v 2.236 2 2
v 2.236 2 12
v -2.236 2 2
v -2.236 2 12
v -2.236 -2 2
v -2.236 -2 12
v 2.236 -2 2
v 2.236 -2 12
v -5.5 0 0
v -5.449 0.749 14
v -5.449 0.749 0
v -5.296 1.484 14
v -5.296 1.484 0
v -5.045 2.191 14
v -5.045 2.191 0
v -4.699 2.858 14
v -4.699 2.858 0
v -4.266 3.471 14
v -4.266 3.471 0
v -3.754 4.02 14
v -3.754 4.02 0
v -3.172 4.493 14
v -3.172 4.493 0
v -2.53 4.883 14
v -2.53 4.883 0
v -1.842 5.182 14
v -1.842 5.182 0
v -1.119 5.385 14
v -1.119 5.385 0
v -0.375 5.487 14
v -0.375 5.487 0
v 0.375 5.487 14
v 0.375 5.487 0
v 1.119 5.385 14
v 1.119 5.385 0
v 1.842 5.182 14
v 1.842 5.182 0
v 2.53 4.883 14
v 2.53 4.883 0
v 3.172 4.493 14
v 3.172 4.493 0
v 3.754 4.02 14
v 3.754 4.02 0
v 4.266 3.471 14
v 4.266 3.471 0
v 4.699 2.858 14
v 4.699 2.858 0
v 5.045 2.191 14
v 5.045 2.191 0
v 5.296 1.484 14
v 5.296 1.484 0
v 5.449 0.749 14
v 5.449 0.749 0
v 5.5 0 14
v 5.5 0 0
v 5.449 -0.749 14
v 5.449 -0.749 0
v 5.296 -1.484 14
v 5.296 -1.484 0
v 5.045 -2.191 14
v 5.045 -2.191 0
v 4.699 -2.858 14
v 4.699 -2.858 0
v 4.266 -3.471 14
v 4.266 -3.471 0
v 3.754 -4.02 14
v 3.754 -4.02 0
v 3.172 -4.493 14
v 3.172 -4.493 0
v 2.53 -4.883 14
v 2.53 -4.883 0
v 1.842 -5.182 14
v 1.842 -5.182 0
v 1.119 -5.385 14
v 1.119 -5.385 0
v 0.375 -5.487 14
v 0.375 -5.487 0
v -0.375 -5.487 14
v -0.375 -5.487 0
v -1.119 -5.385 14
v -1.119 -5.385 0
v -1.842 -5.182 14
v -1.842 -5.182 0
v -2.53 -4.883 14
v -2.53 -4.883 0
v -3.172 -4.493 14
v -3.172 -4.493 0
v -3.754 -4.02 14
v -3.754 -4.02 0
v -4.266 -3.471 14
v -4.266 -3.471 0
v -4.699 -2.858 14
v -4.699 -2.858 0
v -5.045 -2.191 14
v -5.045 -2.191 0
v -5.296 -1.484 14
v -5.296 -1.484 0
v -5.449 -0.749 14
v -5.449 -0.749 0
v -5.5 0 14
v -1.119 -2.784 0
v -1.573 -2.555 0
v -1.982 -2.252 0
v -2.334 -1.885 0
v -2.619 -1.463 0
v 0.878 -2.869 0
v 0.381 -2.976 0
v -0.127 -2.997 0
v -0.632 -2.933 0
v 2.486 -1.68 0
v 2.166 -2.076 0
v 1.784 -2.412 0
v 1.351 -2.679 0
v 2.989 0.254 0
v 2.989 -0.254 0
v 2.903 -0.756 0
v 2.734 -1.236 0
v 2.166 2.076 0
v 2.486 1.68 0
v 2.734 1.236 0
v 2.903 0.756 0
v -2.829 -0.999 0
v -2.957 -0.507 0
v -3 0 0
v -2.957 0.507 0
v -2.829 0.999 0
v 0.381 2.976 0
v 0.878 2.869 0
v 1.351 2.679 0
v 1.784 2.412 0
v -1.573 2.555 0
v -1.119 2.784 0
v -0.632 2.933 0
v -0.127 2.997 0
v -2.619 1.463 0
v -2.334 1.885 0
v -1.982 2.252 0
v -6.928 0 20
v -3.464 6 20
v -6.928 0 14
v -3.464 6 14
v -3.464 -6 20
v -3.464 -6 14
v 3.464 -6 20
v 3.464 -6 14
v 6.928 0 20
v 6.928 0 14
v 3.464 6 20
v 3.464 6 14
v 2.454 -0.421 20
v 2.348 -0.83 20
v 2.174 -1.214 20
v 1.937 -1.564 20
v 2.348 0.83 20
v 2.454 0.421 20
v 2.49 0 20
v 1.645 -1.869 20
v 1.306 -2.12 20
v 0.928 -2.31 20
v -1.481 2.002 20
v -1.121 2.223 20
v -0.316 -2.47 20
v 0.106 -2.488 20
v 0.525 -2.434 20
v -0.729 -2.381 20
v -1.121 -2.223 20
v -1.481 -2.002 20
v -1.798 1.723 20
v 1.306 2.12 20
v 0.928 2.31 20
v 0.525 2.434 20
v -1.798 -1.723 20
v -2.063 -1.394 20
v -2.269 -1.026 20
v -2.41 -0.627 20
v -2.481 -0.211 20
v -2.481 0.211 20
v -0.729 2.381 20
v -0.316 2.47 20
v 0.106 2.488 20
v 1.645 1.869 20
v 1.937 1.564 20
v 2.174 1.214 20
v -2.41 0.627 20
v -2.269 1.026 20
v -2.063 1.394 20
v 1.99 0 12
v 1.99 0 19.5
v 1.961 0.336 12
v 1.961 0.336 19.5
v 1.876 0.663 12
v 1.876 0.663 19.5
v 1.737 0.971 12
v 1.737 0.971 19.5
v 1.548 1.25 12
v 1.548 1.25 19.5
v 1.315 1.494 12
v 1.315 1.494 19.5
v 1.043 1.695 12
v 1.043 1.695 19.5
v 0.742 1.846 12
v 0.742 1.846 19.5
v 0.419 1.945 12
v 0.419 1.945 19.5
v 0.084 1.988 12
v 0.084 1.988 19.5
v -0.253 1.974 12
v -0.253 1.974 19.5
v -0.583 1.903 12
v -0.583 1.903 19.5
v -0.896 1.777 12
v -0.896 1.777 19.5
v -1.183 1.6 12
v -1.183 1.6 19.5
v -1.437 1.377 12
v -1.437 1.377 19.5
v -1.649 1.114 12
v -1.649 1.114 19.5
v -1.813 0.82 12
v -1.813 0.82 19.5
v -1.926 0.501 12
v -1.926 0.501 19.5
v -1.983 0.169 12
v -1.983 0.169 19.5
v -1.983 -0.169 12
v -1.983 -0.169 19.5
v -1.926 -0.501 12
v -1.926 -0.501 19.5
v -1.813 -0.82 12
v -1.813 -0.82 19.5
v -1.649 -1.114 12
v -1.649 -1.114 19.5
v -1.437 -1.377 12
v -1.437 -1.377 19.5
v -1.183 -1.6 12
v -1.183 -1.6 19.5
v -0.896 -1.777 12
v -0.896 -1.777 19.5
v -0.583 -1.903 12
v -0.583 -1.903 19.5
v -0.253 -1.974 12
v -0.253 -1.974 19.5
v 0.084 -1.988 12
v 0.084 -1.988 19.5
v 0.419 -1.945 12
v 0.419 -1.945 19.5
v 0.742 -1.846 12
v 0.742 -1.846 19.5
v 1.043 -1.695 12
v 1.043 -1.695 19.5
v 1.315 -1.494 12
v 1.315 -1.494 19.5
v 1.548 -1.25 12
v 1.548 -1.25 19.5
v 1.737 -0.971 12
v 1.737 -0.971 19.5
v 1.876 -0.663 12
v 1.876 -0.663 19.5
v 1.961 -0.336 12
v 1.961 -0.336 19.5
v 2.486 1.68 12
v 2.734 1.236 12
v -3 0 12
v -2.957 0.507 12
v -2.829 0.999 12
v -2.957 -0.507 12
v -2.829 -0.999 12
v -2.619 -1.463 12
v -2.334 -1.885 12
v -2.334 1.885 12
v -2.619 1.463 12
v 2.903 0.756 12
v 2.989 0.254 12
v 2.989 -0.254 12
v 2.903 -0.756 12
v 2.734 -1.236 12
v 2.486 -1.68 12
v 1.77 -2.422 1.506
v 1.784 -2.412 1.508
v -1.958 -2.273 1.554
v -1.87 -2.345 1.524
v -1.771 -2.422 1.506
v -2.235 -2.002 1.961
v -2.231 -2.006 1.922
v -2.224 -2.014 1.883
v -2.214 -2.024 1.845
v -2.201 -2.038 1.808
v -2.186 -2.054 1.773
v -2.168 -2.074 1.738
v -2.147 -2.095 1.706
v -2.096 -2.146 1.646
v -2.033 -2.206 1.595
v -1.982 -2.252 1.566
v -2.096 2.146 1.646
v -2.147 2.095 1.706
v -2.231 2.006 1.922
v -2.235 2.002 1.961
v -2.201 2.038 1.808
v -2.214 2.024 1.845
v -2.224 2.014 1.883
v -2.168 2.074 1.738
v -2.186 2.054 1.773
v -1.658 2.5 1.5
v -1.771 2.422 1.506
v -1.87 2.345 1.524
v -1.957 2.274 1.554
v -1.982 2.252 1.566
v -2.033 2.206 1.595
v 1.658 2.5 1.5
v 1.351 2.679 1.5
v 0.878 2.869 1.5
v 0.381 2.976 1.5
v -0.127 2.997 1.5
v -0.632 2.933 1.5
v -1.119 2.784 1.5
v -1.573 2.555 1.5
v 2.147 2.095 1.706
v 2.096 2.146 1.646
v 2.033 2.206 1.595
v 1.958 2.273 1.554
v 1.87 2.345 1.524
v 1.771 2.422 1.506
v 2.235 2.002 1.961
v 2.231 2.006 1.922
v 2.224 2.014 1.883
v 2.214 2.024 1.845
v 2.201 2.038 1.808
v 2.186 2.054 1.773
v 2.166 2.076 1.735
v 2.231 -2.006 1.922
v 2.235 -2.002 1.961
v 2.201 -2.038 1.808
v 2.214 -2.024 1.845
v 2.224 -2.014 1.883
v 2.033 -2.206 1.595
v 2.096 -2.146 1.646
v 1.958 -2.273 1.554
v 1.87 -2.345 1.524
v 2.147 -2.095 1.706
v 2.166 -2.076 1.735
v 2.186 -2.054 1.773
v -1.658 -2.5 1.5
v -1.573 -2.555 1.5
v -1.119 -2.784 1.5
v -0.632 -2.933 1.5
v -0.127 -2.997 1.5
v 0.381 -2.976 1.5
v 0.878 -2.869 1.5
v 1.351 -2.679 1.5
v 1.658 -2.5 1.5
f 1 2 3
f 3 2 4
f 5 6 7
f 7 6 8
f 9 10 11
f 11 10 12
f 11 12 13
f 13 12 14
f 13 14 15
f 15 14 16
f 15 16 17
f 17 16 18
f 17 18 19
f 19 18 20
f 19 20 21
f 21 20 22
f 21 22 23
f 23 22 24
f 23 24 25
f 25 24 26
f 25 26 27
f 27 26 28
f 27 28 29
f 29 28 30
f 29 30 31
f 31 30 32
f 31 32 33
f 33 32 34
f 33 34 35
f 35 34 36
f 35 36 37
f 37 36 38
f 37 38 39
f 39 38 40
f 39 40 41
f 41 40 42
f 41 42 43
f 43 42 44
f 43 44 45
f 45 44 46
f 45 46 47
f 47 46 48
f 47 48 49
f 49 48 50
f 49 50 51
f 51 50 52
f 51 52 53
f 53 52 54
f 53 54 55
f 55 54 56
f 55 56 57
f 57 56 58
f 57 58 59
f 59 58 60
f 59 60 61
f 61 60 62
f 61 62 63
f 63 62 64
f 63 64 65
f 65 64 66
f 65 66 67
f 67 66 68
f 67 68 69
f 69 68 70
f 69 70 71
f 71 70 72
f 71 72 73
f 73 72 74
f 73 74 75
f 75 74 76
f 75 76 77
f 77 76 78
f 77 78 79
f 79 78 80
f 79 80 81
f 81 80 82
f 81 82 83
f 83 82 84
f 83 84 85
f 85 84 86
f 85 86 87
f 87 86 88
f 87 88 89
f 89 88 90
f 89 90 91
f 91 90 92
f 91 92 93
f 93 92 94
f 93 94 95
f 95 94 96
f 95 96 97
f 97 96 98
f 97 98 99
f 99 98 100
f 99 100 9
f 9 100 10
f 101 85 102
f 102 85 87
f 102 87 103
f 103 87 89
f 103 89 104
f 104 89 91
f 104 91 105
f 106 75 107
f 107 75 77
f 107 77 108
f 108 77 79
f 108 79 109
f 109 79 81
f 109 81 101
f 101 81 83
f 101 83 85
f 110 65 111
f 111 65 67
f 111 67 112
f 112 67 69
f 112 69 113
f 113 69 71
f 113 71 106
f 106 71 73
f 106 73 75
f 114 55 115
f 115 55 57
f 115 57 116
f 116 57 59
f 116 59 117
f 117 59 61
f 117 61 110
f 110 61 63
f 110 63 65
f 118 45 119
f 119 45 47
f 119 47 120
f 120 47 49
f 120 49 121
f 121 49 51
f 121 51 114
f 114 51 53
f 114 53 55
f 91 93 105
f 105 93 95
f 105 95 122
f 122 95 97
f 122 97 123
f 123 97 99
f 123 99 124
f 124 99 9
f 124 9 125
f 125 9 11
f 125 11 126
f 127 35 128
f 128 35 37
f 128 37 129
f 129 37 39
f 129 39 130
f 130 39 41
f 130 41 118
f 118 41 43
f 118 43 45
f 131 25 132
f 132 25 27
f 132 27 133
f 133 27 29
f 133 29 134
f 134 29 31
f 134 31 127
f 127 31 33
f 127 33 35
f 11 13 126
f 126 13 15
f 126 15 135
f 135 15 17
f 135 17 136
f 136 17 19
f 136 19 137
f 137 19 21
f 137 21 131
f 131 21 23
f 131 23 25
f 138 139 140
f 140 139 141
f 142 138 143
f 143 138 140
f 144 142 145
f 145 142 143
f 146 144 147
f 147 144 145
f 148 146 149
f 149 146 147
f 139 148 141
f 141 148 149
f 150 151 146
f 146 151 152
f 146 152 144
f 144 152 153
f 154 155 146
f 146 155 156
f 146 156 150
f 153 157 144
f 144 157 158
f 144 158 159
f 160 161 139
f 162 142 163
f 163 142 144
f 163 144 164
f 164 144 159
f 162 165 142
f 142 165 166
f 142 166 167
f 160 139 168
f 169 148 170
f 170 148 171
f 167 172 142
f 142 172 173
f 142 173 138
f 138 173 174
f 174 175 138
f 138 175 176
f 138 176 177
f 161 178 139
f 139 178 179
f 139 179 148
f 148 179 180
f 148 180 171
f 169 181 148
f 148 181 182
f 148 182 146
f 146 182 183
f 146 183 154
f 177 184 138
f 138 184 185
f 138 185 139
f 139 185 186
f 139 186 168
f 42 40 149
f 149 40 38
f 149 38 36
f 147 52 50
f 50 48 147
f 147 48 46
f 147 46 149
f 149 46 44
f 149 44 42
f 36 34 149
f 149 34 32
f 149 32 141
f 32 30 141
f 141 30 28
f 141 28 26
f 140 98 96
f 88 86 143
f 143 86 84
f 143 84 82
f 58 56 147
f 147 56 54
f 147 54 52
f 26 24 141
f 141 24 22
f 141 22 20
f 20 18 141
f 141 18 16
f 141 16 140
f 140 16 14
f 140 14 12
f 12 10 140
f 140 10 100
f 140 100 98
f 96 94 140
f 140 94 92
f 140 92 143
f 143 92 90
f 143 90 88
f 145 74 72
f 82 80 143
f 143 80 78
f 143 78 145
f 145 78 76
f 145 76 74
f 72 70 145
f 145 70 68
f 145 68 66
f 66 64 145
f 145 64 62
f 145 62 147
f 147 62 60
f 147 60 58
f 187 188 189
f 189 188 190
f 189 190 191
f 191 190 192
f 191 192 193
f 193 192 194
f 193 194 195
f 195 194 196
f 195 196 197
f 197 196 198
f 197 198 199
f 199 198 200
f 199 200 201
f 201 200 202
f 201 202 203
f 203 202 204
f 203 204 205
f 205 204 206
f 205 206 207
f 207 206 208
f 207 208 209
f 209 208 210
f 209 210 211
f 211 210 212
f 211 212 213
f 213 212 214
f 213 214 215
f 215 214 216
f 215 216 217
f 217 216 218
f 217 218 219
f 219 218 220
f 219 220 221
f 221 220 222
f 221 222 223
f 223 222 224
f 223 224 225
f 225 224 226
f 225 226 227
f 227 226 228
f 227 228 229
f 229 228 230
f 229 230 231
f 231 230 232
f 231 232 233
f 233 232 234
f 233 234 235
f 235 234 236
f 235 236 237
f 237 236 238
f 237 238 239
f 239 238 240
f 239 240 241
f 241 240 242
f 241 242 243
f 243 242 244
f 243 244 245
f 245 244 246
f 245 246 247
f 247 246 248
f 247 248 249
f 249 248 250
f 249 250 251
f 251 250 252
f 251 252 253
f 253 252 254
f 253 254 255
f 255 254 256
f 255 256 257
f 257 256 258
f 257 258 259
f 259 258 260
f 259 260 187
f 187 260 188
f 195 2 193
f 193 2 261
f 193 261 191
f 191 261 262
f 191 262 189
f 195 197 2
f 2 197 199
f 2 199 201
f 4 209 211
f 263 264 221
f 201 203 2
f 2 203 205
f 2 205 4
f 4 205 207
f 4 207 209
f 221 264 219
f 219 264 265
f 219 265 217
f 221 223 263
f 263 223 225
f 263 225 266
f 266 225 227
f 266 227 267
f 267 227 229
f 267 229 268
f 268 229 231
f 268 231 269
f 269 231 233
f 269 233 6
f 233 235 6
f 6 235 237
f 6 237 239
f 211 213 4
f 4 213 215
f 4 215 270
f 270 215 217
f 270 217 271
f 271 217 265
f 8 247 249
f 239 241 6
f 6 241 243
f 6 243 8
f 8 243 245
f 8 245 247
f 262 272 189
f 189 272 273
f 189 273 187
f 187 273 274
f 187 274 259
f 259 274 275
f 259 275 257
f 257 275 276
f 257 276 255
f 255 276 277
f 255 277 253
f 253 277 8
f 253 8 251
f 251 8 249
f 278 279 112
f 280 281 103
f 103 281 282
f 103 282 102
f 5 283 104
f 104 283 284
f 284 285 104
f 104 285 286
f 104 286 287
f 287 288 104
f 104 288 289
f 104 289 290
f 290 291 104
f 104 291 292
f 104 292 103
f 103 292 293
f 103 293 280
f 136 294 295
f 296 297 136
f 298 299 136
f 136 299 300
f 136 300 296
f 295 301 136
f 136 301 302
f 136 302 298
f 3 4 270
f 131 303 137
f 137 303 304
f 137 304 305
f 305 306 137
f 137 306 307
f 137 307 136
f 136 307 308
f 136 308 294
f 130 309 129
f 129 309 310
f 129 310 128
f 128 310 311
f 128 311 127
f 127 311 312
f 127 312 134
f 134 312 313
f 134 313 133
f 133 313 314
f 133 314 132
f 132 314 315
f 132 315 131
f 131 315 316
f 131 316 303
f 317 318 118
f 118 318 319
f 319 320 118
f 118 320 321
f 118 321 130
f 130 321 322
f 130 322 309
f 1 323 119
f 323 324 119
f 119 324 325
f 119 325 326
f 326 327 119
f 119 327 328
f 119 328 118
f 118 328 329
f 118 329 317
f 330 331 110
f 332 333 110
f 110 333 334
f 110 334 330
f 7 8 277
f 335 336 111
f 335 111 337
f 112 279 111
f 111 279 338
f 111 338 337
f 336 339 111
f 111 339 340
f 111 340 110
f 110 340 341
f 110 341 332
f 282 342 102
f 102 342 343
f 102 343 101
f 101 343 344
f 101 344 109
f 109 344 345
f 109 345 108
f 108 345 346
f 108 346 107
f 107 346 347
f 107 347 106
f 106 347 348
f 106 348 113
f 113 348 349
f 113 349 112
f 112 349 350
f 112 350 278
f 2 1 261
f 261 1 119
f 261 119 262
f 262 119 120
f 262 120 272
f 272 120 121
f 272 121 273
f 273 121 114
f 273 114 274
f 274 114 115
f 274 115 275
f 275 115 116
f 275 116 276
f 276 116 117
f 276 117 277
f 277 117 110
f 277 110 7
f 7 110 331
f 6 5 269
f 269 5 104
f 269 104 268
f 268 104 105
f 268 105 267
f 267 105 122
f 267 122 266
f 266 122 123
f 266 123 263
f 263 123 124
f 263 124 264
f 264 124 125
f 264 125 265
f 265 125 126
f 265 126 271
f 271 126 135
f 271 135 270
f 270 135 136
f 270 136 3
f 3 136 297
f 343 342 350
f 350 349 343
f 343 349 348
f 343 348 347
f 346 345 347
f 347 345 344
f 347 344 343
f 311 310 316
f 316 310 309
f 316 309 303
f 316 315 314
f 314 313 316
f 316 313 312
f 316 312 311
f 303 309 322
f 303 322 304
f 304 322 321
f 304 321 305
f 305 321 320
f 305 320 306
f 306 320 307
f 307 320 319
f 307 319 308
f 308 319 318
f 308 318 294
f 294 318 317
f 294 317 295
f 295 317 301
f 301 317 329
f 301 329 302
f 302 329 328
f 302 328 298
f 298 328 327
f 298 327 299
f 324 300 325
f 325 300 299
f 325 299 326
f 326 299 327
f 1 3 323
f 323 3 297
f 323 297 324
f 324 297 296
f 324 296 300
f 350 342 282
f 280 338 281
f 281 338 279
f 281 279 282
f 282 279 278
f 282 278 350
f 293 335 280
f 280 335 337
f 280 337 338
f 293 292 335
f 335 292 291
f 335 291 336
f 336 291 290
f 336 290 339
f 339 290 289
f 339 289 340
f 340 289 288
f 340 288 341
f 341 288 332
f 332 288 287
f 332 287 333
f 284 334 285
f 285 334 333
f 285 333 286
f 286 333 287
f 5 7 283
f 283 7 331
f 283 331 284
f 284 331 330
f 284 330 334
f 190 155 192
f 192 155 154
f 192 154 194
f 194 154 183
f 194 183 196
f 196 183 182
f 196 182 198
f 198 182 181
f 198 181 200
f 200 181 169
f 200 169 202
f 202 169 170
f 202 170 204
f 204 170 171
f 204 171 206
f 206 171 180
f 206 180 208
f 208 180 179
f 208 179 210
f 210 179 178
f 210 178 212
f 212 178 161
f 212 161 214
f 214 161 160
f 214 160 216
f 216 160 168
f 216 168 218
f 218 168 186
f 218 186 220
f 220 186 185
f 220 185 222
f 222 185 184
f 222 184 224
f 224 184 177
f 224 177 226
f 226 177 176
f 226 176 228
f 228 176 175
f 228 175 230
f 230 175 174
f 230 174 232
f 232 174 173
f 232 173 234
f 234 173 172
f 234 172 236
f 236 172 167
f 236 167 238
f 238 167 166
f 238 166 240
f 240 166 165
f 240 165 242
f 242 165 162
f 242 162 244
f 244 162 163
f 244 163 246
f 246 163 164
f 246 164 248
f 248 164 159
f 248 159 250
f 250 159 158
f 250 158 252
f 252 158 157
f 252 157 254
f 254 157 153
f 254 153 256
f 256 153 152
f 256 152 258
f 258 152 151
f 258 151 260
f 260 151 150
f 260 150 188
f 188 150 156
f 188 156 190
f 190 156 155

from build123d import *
from build123d.topology import SkipClean

# Parameters (mm, degrees)
SKETCH1_R           = 5.5
BOSS_EXTRUDE1_DEPTH = 14
BOSS_EXTRUDE2_DEPTH = 6
SKETCH3_R           = 1.99
CUT_EXTRUDE1_DEPTH  = 8
CUT_EXTRUDE2_DEPTH  = 12
SKETCH5_R           = 3
CUT_EXTRUDE3_DEPTH  = 1.5
FILLET2_R           = 0.5
CHAMFER1_SIZE       = 0.5


with BuildPart() as part:
    # Sketch1 → Boss-Extrude1 (new body)
    with BuildSketch(Plane.XY):
        Circle(SKETCH1_R)
    extrude(amount=BOSS_EXTRUDE1_DEPTH)

    # Sketch2 → Boss-Extrude2 (add)
    with BuildSketch(Plane.XY.offset(14)):
        Polygon((-6.928203, 0), (-3.464102, -6), (3.464102, -6), (6.928203, 0), (3.464102, 6), (-3.464102, 6), align=None)
    extrude(amount=BOSS_EXTRUDE2_DEPTH)

    # Sketch3 → Cut-Extrude1 (cut)
    with BuildSketch(Plane.XY.offset(20)):
        Circle(SKETCH3_R)
    extrude(amount=-CUT_EXTRUDE1_DEPTH, mode=Mode.SUBTRACT)

    # Sketch4 → Cut-Extrude2 (cut)
    with BuildSketch(Plane(origin=(0, 0, 0), x_dir=(-1, 0, 0), z_dir=(0, 0, -1))):
        with BuildLine():
            Line((-2.236068, 2), (2.236068, 2))
            ThreePointArc((2.236068, 2), (3, 0), (2.236068, -2))
            Line((2.236068, -2), (-2.236068, -2))
            ThreePointArc((-2.236068, -2), (-3, 0), (-2.236068, 2))
        make_face()
    extrude(amount=-CUT_EXTRUDE2_DEPTH, mode=Mode.SUBTRACT)

    # Sketch5 → Cut-Extrude3 (cut)
    with SkipClean():  # the faces are left unmerged after this step: merging them gives an invalid solid
        with BuildSketch(Plane(origin=(0, 0, 0), x_dir=(-1, 0, 0), z_dir=(0, 0, -1))):
            Circle(SKETCH5_R)
        extrude(amount=-CUT_EXTRUDE3_DEPTH, mode=Mode.SUBTRACT)

    # Fillet2
    # the kernel refuses this fillet: 0.5 mm, written as the material it takes off along each edge
    with BuildSketch(Plane(origin=(3.486068, -2, 1.5), x_dir=(0, 0, 1), z_dir=(-1, 0, 0))) as fillet2_piece_1_section:
        with BuildLine():
            CenterArc((FILLET2_R, -FILLET2_R), FILLET2_R, 90, 90)
            Line((0, -FILLET2_R), (0, 0))
            Line((0, 0), (FILLET2_R, 0))
        make_face()
    fillet2_piece_1 = extrude(amount=6.972136, mode=Mode.PRIVATE)
    fillet2_piece_1 = fillet2_piece_1 & Plane(origin=(0, 0, 1.616535), x_dir=(-1, 0, 0), z_dir=(0, 0, -1)) * Cylinder(3, 16, mode=Mode.PRIVATE)
    add(fillet2_piece_1, mode=Mode.SUBTRACT)
    with BuildSketch(Plane(origin=(-3.486068, 2, 1.5), x_dir=(0, 0, 1), z_dir=(1, 0, 0))) as fillet2_piece_2_section:
        with BuildLine():
            CenterArc((FILLET2_R, -FILLET2_R), FILLET2_R, 90, 90)
            Line((0, -FILLET2_R), (0, 0))
            Line((0, 0), (FILLET2_R, 0))
        make_face()
    fillet2_piece_2 = extrude(amount=6.972136, mode=Mode.PRIVATE)
    fillet2_piece_2 = fillet2_piece_2 & Plane(origin=(0, 0, 1.616535), x_dir=(-1, 0, 0), z_dir=(0, 0, -1)) * Cylinder(3, 16, mode=Mode.PRIVATE)
    add(fillet2_piece_2, mode=Mode.SUBTRACT)

    # Chamfer1
    chamfer1_edges = [part.edges().sort_by_distance(p)[0] for p in [
        (-1.99, 0, 20),
    ]]
    chamfer(chamfer1_edges, length=CHAMFER1_SIZE)


solid = part.part
